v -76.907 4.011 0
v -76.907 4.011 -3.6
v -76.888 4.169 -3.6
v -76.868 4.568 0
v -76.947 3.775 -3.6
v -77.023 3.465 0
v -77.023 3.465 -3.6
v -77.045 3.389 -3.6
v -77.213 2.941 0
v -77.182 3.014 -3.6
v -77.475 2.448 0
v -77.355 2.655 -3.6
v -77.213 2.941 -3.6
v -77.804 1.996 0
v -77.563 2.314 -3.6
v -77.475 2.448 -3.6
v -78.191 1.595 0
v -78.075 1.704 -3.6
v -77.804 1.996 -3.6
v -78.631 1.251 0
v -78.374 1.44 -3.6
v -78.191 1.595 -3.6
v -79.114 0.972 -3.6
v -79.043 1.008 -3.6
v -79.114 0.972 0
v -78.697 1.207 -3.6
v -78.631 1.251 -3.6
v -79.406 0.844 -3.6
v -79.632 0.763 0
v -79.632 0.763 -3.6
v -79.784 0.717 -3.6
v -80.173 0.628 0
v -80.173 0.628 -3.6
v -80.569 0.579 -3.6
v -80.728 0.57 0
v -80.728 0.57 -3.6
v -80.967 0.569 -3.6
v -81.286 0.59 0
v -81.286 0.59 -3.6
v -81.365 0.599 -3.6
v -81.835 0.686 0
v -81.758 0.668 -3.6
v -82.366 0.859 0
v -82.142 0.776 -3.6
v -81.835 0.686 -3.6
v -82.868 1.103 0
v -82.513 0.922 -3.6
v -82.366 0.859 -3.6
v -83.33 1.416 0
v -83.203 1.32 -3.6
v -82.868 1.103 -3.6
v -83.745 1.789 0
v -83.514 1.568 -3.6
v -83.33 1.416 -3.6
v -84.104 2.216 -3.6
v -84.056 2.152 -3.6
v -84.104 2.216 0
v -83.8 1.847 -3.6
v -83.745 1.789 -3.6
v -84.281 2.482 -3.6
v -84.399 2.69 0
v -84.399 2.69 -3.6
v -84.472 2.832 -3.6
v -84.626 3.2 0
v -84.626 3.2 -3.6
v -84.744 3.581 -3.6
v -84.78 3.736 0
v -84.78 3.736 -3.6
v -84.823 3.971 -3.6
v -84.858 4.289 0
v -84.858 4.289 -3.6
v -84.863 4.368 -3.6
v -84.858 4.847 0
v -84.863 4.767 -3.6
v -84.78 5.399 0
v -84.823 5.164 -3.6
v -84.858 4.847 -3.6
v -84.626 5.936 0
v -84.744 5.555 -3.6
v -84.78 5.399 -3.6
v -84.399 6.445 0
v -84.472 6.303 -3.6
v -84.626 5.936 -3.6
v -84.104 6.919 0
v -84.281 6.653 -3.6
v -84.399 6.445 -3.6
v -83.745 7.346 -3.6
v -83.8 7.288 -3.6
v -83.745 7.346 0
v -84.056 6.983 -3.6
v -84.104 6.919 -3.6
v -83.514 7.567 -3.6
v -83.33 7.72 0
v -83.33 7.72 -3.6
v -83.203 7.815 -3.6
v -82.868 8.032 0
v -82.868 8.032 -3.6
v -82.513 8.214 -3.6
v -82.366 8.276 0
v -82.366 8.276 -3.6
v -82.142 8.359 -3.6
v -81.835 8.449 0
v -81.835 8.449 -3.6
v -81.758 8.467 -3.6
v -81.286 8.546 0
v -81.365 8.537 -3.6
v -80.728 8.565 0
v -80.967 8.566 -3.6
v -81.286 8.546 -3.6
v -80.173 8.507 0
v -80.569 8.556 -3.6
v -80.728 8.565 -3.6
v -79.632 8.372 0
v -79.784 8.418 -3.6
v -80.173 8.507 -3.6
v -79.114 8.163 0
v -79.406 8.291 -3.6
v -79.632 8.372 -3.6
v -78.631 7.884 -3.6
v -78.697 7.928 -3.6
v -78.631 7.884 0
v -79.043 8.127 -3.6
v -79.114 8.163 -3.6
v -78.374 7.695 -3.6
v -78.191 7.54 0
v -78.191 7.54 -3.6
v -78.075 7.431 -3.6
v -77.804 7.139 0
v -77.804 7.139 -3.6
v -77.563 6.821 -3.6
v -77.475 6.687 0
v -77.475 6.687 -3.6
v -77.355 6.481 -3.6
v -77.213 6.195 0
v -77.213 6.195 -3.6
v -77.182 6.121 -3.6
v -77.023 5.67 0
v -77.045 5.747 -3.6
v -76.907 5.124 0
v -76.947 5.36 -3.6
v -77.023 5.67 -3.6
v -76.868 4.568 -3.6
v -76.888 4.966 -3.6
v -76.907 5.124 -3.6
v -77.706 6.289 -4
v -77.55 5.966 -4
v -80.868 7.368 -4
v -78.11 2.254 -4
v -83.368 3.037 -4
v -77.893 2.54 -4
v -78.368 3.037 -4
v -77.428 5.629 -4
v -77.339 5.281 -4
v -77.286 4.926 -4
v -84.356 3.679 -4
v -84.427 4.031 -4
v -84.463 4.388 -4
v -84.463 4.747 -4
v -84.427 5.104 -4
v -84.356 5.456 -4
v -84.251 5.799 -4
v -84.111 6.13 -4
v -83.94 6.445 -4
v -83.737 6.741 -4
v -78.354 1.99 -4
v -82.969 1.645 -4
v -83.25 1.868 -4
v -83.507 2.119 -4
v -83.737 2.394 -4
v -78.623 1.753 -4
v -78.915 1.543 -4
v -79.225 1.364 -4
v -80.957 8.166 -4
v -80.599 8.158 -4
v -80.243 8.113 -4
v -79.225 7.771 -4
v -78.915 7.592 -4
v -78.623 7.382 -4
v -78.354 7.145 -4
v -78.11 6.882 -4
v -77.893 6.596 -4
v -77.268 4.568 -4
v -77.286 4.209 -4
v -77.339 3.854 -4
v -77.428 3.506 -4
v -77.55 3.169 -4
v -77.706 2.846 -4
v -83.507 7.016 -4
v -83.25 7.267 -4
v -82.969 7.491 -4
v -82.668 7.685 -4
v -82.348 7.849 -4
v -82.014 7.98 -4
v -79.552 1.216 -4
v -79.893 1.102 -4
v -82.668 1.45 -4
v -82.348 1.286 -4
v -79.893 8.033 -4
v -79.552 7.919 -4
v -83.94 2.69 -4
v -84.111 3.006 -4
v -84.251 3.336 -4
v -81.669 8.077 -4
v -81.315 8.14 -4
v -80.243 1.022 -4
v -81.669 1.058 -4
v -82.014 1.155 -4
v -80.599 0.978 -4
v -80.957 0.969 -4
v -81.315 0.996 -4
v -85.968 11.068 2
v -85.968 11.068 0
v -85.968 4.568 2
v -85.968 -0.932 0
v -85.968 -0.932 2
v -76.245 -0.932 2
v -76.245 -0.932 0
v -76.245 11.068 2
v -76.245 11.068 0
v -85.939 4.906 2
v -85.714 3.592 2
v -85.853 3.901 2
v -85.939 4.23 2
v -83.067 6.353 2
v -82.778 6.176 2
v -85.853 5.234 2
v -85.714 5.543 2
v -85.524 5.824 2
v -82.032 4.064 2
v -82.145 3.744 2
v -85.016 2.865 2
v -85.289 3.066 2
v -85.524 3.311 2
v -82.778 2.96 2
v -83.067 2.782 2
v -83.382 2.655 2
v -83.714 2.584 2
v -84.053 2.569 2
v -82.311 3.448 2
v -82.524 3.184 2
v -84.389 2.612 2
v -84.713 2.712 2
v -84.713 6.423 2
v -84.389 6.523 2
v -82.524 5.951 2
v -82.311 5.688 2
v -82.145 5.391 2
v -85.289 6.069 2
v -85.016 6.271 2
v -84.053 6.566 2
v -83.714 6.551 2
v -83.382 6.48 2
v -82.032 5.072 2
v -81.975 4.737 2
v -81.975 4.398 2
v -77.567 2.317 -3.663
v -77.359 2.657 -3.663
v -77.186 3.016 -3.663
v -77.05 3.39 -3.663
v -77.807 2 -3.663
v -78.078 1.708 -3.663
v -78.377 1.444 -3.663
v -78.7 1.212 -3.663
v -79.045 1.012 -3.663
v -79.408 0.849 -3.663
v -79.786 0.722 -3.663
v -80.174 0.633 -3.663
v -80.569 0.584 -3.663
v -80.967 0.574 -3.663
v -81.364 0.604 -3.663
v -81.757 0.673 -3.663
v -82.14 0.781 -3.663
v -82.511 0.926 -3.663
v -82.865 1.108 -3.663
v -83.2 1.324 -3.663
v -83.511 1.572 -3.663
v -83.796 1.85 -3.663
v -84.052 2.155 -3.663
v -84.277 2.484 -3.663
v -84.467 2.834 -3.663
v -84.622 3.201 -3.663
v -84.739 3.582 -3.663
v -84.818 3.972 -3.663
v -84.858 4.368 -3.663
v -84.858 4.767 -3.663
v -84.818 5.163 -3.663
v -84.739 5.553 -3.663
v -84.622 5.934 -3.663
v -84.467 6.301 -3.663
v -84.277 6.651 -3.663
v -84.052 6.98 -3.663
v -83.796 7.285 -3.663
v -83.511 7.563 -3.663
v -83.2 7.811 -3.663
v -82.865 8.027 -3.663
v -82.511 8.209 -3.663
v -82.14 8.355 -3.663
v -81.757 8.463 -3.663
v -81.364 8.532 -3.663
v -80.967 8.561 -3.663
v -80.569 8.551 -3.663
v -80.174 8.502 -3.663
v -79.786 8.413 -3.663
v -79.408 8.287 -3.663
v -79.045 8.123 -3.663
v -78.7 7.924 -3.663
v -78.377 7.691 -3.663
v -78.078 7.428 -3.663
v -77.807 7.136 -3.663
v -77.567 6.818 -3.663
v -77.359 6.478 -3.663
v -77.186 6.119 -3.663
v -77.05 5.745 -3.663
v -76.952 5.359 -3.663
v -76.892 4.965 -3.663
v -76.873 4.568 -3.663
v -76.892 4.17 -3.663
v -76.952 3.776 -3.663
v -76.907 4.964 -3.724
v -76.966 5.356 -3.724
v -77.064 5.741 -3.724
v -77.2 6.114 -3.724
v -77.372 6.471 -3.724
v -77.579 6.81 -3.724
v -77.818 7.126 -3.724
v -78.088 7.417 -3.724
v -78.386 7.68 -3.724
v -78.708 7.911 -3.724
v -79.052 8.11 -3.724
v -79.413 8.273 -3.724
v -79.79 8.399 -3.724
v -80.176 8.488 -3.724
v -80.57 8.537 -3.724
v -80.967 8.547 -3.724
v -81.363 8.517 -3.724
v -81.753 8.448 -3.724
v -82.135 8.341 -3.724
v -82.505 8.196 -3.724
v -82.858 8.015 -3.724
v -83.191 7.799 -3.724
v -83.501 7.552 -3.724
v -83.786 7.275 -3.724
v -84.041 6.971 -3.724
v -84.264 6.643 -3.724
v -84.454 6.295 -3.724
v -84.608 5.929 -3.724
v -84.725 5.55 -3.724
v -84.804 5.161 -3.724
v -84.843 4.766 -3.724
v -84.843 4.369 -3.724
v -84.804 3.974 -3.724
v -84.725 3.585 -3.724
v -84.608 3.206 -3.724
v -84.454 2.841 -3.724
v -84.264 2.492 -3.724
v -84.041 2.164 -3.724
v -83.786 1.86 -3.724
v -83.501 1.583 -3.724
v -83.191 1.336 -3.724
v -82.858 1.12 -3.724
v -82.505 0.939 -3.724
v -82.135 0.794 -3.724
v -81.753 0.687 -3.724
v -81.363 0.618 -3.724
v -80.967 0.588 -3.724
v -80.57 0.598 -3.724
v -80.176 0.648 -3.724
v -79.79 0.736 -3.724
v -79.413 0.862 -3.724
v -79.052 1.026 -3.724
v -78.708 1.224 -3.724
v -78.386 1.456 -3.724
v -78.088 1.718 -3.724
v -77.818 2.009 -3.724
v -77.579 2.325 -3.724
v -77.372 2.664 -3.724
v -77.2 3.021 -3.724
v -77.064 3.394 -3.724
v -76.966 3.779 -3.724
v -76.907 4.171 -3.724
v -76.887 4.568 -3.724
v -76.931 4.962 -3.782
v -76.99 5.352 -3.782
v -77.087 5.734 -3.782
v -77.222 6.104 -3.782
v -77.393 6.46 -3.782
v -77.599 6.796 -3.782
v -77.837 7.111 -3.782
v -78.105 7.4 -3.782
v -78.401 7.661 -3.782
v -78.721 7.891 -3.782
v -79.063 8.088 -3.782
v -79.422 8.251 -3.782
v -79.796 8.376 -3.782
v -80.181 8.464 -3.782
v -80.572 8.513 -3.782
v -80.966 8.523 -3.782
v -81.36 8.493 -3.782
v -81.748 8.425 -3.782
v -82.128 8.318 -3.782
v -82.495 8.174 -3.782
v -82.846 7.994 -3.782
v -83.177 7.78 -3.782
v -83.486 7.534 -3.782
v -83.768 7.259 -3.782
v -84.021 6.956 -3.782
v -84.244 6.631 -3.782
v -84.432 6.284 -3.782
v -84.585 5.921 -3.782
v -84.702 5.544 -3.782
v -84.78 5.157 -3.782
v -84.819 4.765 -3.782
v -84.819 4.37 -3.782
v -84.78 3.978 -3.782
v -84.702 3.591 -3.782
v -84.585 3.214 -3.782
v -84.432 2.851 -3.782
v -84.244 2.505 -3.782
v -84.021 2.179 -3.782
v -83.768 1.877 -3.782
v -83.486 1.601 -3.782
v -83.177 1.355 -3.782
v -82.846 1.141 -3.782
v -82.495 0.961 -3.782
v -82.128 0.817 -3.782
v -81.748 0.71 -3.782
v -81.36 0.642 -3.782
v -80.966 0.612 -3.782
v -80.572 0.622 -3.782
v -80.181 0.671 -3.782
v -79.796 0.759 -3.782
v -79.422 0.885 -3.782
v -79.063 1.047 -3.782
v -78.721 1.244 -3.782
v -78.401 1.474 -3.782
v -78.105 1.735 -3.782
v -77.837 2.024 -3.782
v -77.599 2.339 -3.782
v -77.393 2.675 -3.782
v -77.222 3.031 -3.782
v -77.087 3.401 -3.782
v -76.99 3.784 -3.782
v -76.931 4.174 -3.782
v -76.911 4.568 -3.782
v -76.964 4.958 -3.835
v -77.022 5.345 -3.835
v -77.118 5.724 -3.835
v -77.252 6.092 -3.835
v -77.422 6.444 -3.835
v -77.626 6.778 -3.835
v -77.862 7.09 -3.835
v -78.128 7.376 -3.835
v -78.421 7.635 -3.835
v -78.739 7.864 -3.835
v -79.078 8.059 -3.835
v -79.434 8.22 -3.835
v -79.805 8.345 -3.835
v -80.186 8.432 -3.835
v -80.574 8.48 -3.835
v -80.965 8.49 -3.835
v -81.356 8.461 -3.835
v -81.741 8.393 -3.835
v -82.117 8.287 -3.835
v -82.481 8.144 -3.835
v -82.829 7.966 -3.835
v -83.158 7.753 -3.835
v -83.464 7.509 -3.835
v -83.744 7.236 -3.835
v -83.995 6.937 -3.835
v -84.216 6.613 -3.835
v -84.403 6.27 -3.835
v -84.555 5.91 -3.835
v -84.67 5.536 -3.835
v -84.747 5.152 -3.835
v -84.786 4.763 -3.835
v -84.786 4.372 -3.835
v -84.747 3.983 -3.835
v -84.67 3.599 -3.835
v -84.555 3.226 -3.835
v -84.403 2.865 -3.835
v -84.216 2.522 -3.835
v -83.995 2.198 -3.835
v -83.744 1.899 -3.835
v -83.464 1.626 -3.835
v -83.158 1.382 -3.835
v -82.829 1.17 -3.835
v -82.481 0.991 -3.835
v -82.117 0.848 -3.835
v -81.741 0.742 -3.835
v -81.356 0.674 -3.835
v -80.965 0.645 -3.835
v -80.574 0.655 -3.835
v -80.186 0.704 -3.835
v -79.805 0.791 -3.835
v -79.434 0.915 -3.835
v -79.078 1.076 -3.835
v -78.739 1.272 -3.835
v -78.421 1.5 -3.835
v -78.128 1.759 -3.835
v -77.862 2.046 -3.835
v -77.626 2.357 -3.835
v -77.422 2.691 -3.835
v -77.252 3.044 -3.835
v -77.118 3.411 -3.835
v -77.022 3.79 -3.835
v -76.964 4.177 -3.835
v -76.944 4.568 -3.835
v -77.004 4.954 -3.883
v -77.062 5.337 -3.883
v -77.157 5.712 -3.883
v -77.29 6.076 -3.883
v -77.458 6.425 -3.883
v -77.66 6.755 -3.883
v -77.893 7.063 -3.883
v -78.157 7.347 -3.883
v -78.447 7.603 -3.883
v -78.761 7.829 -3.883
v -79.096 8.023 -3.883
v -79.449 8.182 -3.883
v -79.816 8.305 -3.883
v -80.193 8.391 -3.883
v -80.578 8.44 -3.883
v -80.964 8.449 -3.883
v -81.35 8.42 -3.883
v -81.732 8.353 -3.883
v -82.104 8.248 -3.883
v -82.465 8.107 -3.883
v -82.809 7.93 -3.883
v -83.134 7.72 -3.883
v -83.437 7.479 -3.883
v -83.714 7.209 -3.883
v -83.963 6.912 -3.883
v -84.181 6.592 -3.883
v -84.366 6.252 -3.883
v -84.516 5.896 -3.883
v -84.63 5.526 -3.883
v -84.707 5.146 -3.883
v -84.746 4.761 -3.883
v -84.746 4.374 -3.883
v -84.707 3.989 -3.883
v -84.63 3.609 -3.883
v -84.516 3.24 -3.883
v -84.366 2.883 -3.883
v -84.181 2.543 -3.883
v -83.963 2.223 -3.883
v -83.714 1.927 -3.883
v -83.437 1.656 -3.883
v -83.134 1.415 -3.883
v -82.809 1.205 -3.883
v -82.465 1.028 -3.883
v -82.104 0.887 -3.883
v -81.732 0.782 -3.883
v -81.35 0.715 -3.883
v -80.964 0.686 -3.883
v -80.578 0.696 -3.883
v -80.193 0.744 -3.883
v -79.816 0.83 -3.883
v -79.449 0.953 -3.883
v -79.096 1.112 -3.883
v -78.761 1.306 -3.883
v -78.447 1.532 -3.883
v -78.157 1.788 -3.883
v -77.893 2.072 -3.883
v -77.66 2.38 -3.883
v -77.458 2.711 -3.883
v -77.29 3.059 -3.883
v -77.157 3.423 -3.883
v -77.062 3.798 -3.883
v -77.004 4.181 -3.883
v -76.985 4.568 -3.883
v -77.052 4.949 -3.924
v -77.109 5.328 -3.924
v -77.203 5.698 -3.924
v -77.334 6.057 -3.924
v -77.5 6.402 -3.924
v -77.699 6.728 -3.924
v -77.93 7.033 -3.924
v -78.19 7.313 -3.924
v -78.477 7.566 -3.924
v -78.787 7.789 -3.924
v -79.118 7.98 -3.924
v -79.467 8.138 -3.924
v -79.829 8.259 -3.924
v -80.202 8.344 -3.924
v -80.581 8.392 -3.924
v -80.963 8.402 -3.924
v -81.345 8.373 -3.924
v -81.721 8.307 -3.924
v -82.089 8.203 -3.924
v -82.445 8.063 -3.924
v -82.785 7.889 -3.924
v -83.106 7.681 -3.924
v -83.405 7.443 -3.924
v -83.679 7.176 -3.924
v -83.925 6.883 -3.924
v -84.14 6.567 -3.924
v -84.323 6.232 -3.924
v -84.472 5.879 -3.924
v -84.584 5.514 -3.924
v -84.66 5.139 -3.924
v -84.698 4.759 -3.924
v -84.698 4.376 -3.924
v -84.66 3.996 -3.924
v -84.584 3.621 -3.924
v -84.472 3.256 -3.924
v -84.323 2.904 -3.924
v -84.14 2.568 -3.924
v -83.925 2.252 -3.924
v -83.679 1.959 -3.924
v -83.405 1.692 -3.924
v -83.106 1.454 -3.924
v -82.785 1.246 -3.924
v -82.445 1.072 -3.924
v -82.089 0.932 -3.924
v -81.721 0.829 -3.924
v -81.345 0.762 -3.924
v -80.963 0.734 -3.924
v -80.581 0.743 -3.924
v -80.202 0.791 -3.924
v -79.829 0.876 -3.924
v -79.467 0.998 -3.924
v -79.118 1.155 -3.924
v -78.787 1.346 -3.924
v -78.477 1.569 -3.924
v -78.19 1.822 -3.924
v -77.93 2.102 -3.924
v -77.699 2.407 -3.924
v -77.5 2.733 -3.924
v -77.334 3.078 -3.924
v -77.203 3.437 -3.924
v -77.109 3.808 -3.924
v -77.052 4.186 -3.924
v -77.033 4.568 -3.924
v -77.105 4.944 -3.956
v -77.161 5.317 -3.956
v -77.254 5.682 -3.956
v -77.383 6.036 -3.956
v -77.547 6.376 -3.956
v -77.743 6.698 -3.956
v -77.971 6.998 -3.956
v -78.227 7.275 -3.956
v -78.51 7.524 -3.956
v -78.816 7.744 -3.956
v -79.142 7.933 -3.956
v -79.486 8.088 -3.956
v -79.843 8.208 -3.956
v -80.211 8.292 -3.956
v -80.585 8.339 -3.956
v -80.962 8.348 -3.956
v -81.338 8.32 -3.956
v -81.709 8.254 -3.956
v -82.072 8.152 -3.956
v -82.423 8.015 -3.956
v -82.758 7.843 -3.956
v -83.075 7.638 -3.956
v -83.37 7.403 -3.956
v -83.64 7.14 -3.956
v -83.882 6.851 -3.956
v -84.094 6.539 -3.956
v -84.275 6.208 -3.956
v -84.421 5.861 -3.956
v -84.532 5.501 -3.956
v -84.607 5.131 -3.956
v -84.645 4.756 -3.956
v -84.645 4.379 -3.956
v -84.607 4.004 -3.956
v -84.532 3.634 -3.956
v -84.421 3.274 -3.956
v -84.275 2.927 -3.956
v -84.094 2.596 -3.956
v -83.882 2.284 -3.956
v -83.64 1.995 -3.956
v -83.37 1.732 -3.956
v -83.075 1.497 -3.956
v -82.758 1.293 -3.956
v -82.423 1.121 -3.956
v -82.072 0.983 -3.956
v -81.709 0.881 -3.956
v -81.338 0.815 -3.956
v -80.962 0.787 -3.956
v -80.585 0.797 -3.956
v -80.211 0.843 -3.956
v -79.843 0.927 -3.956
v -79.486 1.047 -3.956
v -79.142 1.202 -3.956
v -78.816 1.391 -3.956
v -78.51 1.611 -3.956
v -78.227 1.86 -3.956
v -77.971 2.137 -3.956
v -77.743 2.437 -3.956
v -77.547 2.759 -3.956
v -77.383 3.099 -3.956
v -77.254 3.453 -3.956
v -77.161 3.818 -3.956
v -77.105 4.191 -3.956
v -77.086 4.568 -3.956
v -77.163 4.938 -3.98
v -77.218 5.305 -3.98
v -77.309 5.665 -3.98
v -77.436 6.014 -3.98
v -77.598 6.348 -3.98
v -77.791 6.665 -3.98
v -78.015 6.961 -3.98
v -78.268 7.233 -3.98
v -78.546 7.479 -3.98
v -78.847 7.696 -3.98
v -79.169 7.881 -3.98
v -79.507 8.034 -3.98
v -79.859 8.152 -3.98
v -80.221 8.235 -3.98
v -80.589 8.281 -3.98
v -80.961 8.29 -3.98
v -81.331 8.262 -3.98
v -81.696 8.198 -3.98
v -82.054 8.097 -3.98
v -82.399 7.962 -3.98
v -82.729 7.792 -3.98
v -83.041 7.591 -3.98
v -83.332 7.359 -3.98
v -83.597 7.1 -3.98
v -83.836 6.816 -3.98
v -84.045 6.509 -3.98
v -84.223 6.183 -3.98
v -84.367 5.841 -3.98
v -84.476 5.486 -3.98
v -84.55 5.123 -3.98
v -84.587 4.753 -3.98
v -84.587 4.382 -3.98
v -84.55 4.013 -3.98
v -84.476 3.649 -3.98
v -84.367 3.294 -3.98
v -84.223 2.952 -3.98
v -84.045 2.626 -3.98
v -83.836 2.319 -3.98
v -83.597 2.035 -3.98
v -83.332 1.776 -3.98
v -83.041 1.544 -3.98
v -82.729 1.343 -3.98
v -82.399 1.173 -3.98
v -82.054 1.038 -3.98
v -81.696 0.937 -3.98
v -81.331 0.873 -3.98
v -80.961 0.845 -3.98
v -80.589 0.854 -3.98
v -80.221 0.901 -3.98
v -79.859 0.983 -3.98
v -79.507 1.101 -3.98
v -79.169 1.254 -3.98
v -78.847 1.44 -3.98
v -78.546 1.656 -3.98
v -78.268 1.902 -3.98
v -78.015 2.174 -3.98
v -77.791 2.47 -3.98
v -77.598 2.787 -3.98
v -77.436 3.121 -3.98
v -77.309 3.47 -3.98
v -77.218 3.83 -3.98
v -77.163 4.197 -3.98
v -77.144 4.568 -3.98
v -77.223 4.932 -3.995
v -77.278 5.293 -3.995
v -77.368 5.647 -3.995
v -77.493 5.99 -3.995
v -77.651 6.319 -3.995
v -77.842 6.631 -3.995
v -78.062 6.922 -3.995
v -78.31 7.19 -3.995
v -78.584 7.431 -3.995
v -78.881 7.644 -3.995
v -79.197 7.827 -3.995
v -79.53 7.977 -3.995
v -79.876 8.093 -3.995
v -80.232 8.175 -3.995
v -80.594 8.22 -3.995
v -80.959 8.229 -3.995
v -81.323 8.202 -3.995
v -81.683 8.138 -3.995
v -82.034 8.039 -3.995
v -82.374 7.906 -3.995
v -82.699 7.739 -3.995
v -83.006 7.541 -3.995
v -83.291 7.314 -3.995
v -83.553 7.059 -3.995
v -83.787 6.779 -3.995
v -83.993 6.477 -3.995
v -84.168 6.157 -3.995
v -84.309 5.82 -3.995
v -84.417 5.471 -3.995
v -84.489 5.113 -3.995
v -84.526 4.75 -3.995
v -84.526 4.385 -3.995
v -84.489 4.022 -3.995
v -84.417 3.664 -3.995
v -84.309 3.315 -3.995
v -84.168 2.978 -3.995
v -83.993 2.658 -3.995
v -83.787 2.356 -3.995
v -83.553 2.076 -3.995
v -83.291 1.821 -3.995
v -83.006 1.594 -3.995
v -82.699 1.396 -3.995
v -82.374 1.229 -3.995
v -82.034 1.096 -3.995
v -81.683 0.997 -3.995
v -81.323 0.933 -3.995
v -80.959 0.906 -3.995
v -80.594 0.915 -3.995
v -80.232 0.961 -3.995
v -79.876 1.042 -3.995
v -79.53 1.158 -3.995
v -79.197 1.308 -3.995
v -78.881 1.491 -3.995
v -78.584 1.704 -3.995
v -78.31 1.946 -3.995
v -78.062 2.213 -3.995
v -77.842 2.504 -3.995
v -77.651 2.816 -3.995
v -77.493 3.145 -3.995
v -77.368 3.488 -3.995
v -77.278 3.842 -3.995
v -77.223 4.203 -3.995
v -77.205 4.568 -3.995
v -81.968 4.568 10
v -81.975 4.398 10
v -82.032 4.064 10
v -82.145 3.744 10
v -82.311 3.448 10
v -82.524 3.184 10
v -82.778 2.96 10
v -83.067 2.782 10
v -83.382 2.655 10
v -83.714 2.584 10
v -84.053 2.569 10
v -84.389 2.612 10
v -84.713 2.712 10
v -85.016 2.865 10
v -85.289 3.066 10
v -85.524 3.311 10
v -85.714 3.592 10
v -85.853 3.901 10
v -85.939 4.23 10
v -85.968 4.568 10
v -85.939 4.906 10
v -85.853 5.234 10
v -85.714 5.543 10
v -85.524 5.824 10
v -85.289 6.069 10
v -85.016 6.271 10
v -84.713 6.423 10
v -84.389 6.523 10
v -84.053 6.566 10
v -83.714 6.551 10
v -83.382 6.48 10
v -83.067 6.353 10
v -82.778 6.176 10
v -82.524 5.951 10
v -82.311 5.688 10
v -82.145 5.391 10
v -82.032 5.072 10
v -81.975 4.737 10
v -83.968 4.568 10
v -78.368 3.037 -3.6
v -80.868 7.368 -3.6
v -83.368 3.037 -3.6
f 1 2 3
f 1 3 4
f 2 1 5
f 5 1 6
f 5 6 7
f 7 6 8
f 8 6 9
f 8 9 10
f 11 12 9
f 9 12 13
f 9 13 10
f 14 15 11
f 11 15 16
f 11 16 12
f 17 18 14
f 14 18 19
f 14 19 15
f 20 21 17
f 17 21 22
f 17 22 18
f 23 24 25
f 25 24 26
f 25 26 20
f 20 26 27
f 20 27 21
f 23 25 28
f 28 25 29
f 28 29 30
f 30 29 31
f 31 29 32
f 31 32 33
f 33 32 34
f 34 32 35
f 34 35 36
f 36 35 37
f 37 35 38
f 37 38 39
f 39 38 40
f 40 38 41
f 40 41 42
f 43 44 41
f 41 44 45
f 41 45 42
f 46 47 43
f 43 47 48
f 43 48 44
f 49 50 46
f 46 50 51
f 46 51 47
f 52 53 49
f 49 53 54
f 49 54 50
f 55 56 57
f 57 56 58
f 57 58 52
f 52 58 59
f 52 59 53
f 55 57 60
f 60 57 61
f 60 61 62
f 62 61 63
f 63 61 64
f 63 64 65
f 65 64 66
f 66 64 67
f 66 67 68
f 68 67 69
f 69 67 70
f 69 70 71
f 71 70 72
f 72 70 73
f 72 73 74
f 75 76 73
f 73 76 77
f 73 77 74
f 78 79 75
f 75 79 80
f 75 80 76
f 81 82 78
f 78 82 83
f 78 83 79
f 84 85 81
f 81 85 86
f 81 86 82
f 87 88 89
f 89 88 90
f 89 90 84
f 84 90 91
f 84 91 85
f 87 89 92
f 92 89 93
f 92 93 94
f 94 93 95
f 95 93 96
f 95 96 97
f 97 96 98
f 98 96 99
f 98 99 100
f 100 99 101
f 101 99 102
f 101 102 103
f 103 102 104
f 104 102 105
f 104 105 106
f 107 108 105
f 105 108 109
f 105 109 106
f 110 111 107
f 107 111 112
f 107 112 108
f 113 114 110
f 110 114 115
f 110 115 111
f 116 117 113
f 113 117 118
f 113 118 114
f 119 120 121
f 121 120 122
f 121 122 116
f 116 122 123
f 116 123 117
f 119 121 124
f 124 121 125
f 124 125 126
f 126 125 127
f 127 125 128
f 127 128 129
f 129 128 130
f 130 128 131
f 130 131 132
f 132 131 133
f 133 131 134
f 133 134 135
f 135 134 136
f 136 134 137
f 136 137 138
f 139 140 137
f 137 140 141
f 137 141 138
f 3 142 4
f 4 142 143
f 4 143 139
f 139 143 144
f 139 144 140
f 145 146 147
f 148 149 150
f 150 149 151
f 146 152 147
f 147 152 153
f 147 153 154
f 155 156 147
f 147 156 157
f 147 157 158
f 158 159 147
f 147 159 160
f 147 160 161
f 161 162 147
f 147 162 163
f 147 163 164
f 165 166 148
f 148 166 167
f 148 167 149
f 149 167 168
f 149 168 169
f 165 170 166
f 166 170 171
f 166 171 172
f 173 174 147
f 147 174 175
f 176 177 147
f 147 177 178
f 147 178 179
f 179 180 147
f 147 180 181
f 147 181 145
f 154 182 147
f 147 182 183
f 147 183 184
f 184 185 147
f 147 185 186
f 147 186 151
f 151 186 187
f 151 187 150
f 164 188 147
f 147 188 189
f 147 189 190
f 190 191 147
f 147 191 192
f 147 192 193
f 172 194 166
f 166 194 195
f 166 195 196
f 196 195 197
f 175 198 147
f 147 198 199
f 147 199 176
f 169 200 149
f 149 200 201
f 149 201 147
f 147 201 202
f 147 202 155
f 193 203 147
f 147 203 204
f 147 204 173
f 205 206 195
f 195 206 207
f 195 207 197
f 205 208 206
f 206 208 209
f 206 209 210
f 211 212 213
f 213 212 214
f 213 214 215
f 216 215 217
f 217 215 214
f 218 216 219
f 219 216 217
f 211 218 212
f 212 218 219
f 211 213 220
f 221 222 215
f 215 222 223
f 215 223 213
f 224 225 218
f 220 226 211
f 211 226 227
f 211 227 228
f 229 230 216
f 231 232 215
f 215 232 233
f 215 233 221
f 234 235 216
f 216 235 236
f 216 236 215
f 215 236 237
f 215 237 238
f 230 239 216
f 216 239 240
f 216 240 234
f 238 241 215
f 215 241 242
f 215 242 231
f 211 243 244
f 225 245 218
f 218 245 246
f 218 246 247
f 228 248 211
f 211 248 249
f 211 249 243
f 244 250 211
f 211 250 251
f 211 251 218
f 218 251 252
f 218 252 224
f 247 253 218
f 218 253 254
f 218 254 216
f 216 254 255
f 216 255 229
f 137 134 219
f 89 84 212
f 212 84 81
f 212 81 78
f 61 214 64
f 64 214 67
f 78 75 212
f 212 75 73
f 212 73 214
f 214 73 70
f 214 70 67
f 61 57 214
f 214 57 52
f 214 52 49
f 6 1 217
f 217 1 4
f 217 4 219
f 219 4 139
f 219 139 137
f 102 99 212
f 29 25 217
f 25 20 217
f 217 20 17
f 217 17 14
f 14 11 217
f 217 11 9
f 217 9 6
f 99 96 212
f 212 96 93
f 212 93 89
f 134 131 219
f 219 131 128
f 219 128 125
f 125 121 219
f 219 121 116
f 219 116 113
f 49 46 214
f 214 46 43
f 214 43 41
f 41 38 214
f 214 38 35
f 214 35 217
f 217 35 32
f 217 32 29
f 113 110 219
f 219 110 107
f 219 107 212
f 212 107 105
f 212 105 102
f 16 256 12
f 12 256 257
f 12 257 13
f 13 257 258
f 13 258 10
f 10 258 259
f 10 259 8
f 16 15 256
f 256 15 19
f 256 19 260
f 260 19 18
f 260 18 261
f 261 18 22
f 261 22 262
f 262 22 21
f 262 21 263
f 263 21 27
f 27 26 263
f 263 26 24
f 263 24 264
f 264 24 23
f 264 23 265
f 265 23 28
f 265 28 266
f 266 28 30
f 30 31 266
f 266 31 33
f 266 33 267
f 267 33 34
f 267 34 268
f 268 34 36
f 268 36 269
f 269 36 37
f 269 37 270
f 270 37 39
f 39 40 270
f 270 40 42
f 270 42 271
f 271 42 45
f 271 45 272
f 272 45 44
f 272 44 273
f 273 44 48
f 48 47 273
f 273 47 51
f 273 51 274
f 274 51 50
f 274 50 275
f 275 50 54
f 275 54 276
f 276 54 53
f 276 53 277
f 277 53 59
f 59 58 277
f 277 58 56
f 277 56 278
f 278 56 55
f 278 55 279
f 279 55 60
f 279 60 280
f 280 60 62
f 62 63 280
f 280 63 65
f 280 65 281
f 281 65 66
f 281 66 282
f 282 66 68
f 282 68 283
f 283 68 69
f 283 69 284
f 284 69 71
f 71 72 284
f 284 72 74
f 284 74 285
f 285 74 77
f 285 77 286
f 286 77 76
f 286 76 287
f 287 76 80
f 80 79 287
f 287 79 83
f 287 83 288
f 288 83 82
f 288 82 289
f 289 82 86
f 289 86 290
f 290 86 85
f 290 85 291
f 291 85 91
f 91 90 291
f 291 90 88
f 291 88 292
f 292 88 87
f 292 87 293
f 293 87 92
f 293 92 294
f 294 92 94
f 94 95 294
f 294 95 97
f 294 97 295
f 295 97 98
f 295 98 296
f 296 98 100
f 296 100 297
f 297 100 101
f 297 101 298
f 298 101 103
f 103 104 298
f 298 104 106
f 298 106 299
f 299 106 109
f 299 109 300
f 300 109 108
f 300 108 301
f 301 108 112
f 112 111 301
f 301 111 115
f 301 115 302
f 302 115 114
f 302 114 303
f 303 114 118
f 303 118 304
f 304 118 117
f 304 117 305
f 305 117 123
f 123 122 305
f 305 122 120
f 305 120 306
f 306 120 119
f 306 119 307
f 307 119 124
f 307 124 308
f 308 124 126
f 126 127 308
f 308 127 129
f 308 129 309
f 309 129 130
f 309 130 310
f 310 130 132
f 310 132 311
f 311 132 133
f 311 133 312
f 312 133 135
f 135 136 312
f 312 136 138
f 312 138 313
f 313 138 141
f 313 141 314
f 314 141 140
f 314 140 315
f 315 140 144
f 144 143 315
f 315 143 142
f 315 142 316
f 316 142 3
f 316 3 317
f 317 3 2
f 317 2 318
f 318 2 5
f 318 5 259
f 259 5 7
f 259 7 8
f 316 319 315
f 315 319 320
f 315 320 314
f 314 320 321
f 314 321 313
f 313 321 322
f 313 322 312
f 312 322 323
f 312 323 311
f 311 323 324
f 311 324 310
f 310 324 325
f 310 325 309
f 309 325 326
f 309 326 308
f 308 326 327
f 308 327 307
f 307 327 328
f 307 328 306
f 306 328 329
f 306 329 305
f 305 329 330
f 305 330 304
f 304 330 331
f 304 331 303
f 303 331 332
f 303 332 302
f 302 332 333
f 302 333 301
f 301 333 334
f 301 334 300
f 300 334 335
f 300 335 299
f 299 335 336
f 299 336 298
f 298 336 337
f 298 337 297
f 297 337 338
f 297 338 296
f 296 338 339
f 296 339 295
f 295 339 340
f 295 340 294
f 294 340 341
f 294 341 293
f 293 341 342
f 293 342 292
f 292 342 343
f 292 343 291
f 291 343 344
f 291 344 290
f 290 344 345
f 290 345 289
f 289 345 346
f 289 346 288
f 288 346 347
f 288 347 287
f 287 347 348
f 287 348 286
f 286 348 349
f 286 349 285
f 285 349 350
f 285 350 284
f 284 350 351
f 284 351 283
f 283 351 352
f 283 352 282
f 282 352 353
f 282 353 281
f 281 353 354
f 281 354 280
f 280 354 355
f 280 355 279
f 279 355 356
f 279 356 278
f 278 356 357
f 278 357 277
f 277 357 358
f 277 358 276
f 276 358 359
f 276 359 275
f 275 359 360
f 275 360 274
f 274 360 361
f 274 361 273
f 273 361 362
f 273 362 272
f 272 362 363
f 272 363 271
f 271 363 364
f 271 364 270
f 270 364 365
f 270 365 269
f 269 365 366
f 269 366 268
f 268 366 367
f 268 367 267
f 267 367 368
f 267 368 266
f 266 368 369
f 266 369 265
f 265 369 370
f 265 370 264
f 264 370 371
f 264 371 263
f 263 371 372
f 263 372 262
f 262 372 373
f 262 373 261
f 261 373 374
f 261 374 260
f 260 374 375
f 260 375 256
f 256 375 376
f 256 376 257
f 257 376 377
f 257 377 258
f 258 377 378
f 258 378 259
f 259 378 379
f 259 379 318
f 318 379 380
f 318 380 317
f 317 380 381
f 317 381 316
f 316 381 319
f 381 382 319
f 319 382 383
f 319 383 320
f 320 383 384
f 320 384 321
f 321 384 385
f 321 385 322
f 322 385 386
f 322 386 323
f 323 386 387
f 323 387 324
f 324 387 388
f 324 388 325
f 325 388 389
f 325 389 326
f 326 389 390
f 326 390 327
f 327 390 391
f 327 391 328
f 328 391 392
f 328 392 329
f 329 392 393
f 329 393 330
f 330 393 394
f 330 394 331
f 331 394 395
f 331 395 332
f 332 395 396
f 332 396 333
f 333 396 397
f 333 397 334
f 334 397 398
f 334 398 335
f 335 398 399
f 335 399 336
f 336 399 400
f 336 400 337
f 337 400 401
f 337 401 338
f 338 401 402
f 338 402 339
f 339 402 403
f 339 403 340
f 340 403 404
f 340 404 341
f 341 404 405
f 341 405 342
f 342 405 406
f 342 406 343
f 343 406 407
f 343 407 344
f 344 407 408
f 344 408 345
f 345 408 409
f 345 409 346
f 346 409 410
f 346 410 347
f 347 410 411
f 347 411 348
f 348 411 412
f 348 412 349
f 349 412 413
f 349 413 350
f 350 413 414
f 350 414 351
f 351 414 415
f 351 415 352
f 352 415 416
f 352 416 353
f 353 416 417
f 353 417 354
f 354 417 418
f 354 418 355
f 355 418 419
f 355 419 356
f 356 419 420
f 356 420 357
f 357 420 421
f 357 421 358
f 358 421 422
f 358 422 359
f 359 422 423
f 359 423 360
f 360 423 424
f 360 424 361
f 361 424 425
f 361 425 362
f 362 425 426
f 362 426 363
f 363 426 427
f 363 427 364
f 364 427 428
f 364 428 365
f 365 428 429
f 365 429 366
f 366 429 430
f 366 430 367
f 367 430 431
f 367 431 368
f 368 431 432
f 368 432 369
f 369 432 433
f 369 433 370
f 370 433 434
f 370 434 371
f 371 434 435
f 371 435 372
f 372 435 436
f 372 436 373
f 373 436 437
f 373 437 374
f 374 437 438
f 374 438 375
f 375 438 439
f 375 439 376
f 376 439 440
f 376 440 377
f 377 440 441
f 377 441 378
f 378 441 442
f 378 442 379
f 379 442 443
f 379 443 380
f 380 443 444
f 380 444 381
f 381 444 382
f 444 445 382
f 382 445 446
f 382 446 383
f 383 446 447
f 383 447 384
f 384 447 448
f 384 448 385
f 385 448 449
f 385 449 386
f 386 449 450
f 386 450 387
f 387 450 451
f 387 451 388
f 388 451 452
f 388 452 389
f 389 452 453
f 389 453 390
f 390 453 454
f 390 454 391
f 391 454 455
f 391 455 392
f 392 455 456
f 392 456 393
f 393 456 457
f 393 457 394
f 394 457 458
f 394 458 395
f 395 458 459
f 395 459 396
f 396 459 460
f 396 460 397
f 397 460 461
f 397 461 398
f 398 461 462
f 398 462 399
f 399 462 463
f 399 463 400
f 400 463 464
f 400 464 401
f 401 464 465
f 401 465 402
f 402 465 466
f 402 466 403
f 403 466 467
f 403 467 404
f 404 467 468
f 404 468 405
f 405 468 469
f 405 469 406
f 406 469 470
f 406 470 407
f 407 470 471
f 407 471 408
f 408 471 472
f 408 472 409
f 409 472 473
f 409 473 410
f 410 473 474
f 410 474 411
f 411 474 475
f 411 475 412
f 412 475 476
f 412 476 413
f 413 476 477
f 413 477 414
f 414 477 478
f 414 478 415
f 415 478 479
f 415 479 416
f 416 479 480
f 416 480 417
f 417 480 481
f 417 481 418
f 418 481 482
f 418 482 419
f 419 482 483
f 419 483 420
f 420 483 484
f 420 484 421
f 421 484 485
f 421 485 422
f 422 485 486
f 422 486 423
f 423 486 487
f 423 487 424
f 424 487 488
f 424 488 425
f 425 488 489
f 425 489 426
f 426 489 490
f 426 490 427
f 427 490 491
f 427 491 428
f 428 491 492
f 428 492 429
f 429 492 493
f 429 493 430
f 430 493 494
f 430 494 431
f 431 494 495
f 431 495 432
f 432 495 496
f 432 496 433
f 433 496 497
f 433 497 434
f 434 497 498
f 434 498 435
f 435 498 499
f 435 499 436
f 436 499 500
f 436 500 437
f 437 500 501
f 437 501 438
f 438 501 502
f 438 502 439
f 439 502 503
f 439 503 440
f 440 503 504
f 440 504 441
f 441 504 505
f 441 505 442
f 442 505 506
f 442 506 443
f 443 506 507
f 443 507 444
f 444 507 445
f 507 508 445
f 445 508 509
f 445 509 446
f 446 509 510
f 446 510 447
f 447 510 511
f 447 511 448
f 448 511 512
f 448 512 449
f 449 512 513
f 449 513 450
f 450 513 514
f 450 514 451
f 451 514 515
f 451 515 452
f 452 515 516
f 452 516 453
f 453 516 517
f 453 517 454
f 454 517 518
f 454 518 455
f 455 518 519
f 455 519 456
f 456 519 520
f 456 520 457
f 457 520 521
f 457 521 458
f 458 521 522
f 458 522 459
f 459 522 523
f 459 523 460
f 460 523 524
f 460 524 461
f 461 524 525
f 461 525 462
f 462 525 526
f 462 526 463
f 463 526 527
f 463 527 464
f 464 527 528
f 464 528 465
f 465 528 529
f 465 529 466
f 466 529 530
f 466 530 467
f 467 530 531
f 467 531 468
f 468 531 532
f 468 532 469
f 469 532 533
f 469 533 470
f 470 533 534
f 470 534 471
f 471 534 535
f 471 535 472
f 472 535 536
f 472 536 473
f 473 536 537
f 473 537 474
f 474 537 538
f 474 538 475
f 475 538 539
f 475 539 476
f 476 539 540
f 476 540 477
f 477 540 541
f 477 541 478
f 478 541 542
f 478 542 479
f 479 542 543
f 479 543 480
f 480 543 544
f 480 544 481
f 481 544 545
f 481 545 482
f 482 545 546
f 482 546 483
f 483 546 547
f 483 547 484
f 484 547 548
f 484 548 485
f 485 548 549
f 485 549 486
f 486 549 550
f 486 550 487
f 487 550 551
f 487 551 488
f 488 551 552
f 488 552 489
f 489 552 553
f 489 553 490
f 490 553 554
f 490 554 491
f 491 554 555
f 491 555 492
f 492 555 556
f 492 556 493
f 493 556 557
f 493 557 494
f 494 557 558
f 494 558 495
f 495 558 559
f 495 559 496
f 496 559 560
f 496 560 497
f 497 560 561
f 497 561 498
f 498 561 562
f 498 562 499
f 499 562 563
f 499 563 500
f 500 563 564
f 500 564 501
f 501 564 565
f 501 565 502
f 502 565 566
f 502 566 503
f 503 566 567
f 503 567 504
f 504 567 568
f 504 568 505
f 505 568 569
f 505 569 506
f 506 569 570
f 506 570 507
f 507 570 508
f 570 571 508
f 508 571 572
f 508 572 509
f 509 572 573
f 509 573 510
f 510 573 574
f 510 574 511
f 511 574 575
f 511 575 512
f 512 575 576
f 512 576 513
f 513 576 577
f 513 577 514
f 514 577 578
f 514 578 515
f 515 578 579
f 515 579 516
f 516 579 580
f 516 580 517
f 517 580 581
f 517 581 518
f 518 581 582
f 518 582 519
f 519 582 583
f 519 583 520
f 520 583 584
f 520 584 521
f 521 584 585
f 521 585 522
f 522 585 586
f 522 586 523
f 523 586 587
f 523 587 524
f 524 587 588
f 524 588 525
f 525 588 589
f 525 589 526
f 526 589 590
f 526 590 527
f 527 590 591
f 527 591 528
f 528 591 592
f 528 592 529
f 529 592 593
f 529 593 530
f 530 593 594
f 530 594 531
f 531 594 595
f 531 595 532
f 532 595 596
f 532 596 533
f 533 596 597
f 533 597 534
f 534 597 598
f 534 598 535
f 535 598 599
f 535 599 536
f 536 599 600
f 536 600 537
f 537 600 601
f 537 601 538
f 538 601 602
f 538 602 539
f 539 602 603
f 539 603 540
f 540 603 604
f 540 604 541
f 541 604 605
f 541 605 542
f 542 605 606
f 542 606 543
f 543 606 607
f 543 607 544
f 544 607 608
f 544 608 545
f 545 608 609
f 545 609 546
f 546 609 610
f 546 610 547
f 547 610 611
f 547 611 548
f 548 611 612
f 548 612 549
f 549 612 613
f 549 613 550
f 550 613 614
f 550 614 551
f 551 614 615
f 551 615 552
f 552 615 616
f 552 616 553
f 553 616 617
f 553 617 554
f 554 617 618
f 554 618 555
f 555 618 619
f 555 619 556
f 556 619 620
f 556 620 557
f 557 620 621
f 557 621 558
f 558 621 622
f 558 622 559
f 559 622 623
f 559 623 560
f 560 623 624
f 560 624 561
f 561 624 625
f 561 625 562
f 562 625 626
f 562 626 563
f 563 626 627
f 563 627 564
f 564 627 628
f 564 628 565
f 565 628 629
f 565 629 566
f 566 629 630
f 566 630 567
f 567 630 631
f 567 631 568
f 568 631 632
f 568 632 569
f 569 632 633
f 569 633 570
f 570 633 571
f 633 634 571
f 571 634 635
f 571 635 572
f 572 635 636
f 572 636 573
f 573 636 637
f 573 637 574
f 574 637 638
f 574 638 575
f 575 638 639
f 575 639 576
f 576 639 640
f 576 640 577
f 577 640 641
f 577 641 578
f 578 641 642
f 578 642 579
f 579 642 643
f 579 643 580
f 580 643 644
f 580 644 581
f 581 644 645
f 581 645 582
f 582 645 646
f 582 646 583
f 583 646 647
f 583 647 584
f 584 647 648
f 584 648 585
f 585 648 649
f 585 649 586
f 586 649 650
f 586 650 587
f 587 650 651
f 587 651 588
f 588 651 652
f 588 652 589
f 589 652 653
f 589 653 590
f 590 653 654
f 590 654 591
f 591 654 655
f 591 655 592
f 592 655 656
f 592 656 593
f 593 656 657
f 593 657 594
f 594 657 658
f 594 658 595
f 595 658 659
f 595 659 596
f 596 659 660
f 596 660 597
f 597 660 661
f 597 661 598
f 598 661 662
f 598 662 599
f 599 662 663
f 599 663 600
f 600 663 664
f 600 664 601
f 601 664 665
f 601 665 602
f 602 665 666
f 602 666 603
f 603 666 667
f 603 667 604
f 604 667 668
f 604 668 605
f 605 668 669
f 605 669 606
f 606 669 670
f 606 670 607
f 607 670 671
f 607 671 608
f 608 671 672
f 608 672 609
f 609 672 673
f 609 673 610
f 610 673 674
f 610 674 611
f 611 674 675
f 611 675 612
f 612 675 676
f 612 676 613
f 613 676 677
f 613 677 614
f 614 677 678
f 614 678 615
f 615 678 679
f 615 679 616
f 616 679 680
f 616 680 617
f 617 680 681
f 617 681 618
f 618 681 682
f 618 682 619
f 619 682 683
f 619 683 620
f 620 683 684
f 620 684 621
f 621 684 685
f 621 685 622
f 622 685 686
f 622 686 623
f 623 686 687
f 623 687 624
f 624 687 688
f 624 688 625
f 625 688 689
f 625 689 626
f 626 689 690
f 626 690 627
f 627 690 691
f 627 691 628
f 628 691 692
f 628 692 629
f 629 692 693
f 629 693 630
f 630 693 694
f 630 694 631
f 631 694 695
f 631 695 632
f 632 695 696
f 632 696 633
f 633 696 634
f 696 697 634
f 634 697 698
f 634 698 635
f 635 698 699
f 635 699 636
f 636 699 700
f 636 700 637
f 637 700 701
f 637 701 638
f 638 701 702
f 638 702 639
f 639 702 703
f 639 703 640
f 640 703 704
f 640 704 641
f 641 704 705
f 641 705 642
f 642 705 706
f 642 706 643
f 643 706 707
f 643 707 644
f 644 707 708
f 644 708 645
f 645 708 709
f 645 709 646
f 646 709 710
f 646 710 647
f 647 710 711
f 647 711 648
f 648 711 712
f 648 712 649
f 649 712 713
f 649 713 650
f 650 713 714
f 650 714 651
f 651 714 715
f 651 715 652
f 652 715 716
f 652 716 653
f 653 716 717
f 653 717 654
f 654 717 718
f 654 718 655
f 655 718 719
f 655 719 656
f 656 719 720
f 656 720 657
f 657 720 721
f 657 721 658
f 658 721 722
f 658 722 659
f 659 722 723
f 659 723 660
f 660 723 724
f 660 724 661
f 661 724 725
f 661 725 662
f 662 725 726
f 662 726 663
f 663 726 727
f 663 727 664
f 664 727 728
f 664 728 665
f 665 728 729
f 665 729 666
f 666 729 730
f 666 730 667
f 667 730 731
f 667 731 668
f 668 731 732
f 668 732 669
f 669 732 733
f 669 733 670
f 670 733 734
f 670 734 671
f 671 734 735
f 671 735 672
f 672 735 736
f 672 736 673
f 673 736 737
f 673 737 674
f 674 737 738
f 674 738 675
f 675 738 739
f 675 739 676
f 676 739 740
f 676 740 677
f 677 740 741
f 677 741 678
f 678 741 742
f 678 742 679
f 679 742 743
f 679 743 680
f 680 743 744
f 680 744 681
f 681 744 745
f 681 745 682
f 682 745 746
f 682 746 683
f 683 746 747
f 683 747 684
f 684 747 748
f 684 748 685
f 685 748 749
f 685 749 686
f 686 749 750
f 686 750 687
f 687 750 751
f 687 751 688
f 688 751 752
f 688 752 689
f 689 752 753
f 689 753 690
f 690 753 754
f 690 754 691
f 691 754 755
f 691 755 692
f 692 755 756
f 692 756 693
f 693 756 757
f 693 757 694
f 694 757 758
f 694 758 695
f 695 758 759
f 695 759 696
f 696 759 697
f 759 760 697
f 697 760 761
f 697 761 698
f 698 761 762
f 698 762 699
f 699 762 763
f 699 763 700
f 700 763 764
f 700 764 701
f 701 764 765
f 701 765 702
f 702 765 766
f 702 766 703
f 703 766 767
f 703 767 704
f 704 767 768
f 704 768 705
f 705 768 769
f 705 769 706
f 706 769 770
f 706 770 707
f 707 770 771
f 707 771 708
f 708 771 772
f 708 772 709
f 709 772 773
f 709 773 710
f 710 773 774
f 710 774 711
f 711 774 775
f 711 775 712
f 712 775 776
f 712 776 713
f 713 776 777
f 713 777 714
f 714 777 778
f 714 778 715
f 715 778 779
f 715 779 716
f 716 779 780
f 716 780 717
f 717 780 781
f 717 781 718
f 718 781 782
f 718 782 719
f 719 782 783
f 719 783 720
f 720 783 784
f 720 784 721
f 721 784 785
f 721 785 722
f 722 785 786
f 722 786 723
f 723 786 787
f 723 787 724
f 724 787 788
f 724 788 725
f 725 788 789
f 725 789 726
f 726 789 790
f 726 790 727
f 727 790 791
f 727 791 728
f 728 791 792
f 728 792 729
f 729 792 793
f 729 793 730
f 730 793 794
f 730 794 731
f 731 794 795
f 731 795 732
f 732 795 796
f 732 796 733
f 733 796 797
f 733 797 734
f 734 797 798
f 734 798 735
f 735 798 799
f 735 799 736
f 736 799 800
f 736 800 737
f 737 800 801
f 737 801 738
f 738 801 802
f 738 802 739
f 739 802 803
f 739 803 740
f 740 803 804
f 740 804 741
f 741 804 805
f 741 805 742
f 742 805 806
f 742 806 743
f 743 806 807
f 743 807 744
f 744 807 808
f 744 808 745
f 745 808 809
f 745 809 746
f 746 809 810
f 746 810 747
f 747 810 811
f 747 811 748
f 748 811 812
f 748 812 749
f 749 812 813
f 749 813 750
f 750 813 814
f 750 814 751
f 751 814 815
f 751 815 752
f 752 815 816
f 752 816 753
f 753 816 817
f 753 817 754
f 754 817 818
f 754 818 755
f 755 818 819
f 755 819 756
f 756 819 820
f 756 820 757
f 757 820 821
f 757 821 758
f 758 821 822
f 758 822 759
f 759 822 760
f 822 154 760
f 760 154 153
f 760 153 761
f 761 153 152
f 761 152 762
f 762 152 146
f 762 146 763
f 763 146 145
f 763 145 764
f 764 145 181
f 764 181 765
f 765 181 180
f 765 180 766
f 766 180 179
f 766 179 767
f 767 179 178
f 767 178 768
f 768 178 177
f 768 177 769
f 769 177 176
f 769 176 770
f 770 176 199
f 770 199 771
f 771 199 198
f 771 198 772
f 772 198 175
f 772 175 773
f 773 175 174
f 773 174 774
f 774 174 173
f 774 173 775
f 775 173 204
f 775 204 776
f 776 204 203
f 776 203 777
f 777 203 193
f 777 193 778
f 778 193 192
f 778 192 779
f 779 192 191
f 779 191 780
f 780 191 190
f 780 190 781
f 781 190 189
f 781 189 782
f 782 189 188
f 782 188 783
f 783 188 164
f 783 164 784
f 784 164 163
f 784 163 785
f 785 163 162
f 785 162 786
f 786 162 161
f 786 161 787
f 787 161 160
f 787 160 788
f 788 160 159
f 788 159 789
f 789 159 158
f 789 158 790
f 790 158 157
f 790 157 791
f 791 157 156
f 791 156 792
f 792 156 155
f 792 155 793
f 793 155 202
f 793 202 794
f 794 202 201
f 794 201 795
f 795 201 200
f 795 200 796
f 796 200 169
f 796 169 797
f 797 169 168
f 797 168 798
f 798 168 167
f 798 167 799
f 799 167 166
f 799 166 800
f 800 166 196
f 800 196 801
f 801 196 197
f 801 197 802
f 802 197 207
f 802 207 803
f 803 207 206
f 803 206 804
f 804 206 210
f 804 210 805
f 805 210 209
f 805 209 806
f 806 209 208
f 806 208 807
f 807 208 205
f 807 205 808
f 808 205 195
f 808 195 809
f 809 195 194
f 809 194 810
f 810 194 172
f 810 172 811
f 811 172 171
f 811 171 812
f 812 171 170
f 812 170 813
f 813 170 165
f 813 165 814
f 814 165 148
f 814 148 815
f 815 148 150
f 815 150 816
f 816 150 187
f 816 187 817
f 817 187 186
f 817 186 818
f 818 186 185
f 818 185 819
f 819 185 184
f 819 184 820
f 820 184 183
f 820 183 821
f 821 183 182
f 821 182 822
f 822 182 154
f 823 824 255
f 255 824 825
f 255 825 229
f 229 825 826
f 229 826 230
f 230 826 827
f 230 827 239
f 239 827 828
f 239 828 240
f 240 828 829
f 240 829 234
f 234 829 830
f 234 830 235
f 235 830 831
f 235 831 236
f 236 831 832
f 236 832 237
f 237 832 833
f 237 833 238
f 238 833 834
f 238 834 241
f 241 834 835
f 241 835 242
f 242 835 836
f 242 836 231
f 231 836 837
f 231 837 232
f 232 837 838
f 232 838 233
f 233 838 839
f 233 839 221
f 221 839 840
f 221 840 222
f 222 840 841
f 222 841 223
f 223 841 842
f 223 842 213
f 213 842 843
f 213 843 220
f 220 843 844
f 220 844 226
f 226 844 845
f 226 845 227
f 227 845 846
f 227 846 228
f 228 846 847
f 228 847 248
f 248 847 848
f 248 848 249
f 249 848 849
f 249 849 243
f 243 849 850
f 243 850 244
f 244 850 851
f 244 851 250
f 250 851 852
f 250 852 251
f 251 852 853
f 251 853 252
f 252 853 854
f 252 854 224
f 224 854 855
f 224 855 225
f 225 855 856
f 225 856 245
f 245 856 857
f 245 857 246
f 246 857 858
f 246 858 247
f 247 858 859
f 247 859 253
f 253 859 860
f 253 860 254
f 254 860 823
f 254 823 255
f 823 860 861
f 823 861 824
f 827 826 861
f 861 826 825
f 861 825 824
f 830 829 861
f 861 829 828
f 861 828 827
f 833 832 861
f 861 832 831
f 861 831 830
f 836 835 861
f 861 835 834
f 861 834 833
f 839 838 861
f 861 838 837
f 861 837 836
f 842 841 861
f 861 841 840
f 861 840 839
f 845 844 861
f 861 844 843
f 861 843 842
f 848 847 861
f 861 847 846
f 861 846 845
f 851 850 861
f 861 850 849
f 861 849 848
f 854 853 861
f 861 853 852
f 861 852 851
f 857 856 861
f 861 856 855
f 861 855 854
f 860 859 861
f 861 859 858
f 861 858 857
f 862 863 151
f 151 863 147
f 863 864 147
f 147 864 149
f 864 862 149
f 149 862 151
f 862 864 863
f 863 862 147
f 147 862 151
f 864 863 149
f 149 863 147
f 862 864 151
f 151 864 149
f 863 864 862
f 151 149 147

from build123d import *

# Parameters (mm, degrees)
SKIZZE2_R                       = 4
AUFSATZ_LINEAR_AUSTRAGEN1_DEPTH = 4
SKIZZE3_W                       = 9.723167254
SKIZZE3_H                       = 12
AUFSATZ_LINEAR_AUSTRAGEN2_DEPTH = 2
VERRUNDUNG1_R                   = 0.4
SKIZZE5_R                       = 2
AUFSATZ_LINEAR_AUSTRAGEN4_DEPTH = 8
SCHNITT_LINEAR_AUSTRAGEN1_DEPTH = 0.4
AUFSATZ_LINEAR_AUSTRAGEN5_DEPTH = 0.4


with BuildPart() as part:
    # Skizze2 → Aufsatz-Linear austragen1 (new body)
    with BuildSketch(Plane.XY):
        with Locations((-80.86767695, 4.567589342)):
            Circle(SKIZZE2_R)
    extrude(amount=-AUFSATZ_LINEAR_AUSTRAGEN1_DEPTH)

    # Skizze3 → Aufsatz-Linear austragen2 (add)
    with BuildSketch(Plane.XY):
        with Locations((-81.106093323, 5.067589342)):
            Rectangle(SKIZZE3_W, SKIZZE3_H)
    extrude(amount=AUFSATZ_LINEAR_AUSTRAGEN2_DEPTH)

    # Verrundung1
    verrundung1_edges = [part.edges().sort_by_distance(p)[0] for p in [
        (-84.86767695, 4.567589342, -4),
    ]]
    fillet(verrundung1_edges, radius=VERRUNDUNG1_R)

    # Skizze5 → Aufsatz-Linear austragen4 (add)
    with BuildSketch(Plane.XY.offset(2)):
        with Locations((-83.96767695, 4.567589342)):
            Circle(SKIZZE5_R)
    extrude(amount=AUFSATZ_LINEAR_AUSTRAGEN4_DEPTH)

    # Skizze4 → Schnitt-Linear austragen1 (cut)
    with BuildSketch(Plane(origin=(0, 0, -4), x_dir=(-1, 0, 0), z_dir=(0, 0, -1))):
        Polygon((78.36767695, 3.037462323), (83.36767695, 3.037462323), (80.86767695, 7.367589342), align=None)
    extrude(amount=-SCHNITT_LINEAR_AUSTRAGEN1_DEPTH, mode=Mode.SUBTRACT)


with BuildPart() as body_2:
    # Skizze4<3> → Aufsatz-Linear austragen5 (new body)
    with BuildSketch(Plane(origin=(0, 0, -4), x_dir=(-1, 0, 0), z_dir=(0, 0, -1))):
        Polygon((78.36767695, 3.037462323), (83.36767695, 3.037462323), (80.86767695, 7.367589342), align=None)
    extrude(amount=-AUFSATZ_LINEAR_AUSTRAGEN5_DEPTH)


solid = Compound([part.part, body_2.part])
